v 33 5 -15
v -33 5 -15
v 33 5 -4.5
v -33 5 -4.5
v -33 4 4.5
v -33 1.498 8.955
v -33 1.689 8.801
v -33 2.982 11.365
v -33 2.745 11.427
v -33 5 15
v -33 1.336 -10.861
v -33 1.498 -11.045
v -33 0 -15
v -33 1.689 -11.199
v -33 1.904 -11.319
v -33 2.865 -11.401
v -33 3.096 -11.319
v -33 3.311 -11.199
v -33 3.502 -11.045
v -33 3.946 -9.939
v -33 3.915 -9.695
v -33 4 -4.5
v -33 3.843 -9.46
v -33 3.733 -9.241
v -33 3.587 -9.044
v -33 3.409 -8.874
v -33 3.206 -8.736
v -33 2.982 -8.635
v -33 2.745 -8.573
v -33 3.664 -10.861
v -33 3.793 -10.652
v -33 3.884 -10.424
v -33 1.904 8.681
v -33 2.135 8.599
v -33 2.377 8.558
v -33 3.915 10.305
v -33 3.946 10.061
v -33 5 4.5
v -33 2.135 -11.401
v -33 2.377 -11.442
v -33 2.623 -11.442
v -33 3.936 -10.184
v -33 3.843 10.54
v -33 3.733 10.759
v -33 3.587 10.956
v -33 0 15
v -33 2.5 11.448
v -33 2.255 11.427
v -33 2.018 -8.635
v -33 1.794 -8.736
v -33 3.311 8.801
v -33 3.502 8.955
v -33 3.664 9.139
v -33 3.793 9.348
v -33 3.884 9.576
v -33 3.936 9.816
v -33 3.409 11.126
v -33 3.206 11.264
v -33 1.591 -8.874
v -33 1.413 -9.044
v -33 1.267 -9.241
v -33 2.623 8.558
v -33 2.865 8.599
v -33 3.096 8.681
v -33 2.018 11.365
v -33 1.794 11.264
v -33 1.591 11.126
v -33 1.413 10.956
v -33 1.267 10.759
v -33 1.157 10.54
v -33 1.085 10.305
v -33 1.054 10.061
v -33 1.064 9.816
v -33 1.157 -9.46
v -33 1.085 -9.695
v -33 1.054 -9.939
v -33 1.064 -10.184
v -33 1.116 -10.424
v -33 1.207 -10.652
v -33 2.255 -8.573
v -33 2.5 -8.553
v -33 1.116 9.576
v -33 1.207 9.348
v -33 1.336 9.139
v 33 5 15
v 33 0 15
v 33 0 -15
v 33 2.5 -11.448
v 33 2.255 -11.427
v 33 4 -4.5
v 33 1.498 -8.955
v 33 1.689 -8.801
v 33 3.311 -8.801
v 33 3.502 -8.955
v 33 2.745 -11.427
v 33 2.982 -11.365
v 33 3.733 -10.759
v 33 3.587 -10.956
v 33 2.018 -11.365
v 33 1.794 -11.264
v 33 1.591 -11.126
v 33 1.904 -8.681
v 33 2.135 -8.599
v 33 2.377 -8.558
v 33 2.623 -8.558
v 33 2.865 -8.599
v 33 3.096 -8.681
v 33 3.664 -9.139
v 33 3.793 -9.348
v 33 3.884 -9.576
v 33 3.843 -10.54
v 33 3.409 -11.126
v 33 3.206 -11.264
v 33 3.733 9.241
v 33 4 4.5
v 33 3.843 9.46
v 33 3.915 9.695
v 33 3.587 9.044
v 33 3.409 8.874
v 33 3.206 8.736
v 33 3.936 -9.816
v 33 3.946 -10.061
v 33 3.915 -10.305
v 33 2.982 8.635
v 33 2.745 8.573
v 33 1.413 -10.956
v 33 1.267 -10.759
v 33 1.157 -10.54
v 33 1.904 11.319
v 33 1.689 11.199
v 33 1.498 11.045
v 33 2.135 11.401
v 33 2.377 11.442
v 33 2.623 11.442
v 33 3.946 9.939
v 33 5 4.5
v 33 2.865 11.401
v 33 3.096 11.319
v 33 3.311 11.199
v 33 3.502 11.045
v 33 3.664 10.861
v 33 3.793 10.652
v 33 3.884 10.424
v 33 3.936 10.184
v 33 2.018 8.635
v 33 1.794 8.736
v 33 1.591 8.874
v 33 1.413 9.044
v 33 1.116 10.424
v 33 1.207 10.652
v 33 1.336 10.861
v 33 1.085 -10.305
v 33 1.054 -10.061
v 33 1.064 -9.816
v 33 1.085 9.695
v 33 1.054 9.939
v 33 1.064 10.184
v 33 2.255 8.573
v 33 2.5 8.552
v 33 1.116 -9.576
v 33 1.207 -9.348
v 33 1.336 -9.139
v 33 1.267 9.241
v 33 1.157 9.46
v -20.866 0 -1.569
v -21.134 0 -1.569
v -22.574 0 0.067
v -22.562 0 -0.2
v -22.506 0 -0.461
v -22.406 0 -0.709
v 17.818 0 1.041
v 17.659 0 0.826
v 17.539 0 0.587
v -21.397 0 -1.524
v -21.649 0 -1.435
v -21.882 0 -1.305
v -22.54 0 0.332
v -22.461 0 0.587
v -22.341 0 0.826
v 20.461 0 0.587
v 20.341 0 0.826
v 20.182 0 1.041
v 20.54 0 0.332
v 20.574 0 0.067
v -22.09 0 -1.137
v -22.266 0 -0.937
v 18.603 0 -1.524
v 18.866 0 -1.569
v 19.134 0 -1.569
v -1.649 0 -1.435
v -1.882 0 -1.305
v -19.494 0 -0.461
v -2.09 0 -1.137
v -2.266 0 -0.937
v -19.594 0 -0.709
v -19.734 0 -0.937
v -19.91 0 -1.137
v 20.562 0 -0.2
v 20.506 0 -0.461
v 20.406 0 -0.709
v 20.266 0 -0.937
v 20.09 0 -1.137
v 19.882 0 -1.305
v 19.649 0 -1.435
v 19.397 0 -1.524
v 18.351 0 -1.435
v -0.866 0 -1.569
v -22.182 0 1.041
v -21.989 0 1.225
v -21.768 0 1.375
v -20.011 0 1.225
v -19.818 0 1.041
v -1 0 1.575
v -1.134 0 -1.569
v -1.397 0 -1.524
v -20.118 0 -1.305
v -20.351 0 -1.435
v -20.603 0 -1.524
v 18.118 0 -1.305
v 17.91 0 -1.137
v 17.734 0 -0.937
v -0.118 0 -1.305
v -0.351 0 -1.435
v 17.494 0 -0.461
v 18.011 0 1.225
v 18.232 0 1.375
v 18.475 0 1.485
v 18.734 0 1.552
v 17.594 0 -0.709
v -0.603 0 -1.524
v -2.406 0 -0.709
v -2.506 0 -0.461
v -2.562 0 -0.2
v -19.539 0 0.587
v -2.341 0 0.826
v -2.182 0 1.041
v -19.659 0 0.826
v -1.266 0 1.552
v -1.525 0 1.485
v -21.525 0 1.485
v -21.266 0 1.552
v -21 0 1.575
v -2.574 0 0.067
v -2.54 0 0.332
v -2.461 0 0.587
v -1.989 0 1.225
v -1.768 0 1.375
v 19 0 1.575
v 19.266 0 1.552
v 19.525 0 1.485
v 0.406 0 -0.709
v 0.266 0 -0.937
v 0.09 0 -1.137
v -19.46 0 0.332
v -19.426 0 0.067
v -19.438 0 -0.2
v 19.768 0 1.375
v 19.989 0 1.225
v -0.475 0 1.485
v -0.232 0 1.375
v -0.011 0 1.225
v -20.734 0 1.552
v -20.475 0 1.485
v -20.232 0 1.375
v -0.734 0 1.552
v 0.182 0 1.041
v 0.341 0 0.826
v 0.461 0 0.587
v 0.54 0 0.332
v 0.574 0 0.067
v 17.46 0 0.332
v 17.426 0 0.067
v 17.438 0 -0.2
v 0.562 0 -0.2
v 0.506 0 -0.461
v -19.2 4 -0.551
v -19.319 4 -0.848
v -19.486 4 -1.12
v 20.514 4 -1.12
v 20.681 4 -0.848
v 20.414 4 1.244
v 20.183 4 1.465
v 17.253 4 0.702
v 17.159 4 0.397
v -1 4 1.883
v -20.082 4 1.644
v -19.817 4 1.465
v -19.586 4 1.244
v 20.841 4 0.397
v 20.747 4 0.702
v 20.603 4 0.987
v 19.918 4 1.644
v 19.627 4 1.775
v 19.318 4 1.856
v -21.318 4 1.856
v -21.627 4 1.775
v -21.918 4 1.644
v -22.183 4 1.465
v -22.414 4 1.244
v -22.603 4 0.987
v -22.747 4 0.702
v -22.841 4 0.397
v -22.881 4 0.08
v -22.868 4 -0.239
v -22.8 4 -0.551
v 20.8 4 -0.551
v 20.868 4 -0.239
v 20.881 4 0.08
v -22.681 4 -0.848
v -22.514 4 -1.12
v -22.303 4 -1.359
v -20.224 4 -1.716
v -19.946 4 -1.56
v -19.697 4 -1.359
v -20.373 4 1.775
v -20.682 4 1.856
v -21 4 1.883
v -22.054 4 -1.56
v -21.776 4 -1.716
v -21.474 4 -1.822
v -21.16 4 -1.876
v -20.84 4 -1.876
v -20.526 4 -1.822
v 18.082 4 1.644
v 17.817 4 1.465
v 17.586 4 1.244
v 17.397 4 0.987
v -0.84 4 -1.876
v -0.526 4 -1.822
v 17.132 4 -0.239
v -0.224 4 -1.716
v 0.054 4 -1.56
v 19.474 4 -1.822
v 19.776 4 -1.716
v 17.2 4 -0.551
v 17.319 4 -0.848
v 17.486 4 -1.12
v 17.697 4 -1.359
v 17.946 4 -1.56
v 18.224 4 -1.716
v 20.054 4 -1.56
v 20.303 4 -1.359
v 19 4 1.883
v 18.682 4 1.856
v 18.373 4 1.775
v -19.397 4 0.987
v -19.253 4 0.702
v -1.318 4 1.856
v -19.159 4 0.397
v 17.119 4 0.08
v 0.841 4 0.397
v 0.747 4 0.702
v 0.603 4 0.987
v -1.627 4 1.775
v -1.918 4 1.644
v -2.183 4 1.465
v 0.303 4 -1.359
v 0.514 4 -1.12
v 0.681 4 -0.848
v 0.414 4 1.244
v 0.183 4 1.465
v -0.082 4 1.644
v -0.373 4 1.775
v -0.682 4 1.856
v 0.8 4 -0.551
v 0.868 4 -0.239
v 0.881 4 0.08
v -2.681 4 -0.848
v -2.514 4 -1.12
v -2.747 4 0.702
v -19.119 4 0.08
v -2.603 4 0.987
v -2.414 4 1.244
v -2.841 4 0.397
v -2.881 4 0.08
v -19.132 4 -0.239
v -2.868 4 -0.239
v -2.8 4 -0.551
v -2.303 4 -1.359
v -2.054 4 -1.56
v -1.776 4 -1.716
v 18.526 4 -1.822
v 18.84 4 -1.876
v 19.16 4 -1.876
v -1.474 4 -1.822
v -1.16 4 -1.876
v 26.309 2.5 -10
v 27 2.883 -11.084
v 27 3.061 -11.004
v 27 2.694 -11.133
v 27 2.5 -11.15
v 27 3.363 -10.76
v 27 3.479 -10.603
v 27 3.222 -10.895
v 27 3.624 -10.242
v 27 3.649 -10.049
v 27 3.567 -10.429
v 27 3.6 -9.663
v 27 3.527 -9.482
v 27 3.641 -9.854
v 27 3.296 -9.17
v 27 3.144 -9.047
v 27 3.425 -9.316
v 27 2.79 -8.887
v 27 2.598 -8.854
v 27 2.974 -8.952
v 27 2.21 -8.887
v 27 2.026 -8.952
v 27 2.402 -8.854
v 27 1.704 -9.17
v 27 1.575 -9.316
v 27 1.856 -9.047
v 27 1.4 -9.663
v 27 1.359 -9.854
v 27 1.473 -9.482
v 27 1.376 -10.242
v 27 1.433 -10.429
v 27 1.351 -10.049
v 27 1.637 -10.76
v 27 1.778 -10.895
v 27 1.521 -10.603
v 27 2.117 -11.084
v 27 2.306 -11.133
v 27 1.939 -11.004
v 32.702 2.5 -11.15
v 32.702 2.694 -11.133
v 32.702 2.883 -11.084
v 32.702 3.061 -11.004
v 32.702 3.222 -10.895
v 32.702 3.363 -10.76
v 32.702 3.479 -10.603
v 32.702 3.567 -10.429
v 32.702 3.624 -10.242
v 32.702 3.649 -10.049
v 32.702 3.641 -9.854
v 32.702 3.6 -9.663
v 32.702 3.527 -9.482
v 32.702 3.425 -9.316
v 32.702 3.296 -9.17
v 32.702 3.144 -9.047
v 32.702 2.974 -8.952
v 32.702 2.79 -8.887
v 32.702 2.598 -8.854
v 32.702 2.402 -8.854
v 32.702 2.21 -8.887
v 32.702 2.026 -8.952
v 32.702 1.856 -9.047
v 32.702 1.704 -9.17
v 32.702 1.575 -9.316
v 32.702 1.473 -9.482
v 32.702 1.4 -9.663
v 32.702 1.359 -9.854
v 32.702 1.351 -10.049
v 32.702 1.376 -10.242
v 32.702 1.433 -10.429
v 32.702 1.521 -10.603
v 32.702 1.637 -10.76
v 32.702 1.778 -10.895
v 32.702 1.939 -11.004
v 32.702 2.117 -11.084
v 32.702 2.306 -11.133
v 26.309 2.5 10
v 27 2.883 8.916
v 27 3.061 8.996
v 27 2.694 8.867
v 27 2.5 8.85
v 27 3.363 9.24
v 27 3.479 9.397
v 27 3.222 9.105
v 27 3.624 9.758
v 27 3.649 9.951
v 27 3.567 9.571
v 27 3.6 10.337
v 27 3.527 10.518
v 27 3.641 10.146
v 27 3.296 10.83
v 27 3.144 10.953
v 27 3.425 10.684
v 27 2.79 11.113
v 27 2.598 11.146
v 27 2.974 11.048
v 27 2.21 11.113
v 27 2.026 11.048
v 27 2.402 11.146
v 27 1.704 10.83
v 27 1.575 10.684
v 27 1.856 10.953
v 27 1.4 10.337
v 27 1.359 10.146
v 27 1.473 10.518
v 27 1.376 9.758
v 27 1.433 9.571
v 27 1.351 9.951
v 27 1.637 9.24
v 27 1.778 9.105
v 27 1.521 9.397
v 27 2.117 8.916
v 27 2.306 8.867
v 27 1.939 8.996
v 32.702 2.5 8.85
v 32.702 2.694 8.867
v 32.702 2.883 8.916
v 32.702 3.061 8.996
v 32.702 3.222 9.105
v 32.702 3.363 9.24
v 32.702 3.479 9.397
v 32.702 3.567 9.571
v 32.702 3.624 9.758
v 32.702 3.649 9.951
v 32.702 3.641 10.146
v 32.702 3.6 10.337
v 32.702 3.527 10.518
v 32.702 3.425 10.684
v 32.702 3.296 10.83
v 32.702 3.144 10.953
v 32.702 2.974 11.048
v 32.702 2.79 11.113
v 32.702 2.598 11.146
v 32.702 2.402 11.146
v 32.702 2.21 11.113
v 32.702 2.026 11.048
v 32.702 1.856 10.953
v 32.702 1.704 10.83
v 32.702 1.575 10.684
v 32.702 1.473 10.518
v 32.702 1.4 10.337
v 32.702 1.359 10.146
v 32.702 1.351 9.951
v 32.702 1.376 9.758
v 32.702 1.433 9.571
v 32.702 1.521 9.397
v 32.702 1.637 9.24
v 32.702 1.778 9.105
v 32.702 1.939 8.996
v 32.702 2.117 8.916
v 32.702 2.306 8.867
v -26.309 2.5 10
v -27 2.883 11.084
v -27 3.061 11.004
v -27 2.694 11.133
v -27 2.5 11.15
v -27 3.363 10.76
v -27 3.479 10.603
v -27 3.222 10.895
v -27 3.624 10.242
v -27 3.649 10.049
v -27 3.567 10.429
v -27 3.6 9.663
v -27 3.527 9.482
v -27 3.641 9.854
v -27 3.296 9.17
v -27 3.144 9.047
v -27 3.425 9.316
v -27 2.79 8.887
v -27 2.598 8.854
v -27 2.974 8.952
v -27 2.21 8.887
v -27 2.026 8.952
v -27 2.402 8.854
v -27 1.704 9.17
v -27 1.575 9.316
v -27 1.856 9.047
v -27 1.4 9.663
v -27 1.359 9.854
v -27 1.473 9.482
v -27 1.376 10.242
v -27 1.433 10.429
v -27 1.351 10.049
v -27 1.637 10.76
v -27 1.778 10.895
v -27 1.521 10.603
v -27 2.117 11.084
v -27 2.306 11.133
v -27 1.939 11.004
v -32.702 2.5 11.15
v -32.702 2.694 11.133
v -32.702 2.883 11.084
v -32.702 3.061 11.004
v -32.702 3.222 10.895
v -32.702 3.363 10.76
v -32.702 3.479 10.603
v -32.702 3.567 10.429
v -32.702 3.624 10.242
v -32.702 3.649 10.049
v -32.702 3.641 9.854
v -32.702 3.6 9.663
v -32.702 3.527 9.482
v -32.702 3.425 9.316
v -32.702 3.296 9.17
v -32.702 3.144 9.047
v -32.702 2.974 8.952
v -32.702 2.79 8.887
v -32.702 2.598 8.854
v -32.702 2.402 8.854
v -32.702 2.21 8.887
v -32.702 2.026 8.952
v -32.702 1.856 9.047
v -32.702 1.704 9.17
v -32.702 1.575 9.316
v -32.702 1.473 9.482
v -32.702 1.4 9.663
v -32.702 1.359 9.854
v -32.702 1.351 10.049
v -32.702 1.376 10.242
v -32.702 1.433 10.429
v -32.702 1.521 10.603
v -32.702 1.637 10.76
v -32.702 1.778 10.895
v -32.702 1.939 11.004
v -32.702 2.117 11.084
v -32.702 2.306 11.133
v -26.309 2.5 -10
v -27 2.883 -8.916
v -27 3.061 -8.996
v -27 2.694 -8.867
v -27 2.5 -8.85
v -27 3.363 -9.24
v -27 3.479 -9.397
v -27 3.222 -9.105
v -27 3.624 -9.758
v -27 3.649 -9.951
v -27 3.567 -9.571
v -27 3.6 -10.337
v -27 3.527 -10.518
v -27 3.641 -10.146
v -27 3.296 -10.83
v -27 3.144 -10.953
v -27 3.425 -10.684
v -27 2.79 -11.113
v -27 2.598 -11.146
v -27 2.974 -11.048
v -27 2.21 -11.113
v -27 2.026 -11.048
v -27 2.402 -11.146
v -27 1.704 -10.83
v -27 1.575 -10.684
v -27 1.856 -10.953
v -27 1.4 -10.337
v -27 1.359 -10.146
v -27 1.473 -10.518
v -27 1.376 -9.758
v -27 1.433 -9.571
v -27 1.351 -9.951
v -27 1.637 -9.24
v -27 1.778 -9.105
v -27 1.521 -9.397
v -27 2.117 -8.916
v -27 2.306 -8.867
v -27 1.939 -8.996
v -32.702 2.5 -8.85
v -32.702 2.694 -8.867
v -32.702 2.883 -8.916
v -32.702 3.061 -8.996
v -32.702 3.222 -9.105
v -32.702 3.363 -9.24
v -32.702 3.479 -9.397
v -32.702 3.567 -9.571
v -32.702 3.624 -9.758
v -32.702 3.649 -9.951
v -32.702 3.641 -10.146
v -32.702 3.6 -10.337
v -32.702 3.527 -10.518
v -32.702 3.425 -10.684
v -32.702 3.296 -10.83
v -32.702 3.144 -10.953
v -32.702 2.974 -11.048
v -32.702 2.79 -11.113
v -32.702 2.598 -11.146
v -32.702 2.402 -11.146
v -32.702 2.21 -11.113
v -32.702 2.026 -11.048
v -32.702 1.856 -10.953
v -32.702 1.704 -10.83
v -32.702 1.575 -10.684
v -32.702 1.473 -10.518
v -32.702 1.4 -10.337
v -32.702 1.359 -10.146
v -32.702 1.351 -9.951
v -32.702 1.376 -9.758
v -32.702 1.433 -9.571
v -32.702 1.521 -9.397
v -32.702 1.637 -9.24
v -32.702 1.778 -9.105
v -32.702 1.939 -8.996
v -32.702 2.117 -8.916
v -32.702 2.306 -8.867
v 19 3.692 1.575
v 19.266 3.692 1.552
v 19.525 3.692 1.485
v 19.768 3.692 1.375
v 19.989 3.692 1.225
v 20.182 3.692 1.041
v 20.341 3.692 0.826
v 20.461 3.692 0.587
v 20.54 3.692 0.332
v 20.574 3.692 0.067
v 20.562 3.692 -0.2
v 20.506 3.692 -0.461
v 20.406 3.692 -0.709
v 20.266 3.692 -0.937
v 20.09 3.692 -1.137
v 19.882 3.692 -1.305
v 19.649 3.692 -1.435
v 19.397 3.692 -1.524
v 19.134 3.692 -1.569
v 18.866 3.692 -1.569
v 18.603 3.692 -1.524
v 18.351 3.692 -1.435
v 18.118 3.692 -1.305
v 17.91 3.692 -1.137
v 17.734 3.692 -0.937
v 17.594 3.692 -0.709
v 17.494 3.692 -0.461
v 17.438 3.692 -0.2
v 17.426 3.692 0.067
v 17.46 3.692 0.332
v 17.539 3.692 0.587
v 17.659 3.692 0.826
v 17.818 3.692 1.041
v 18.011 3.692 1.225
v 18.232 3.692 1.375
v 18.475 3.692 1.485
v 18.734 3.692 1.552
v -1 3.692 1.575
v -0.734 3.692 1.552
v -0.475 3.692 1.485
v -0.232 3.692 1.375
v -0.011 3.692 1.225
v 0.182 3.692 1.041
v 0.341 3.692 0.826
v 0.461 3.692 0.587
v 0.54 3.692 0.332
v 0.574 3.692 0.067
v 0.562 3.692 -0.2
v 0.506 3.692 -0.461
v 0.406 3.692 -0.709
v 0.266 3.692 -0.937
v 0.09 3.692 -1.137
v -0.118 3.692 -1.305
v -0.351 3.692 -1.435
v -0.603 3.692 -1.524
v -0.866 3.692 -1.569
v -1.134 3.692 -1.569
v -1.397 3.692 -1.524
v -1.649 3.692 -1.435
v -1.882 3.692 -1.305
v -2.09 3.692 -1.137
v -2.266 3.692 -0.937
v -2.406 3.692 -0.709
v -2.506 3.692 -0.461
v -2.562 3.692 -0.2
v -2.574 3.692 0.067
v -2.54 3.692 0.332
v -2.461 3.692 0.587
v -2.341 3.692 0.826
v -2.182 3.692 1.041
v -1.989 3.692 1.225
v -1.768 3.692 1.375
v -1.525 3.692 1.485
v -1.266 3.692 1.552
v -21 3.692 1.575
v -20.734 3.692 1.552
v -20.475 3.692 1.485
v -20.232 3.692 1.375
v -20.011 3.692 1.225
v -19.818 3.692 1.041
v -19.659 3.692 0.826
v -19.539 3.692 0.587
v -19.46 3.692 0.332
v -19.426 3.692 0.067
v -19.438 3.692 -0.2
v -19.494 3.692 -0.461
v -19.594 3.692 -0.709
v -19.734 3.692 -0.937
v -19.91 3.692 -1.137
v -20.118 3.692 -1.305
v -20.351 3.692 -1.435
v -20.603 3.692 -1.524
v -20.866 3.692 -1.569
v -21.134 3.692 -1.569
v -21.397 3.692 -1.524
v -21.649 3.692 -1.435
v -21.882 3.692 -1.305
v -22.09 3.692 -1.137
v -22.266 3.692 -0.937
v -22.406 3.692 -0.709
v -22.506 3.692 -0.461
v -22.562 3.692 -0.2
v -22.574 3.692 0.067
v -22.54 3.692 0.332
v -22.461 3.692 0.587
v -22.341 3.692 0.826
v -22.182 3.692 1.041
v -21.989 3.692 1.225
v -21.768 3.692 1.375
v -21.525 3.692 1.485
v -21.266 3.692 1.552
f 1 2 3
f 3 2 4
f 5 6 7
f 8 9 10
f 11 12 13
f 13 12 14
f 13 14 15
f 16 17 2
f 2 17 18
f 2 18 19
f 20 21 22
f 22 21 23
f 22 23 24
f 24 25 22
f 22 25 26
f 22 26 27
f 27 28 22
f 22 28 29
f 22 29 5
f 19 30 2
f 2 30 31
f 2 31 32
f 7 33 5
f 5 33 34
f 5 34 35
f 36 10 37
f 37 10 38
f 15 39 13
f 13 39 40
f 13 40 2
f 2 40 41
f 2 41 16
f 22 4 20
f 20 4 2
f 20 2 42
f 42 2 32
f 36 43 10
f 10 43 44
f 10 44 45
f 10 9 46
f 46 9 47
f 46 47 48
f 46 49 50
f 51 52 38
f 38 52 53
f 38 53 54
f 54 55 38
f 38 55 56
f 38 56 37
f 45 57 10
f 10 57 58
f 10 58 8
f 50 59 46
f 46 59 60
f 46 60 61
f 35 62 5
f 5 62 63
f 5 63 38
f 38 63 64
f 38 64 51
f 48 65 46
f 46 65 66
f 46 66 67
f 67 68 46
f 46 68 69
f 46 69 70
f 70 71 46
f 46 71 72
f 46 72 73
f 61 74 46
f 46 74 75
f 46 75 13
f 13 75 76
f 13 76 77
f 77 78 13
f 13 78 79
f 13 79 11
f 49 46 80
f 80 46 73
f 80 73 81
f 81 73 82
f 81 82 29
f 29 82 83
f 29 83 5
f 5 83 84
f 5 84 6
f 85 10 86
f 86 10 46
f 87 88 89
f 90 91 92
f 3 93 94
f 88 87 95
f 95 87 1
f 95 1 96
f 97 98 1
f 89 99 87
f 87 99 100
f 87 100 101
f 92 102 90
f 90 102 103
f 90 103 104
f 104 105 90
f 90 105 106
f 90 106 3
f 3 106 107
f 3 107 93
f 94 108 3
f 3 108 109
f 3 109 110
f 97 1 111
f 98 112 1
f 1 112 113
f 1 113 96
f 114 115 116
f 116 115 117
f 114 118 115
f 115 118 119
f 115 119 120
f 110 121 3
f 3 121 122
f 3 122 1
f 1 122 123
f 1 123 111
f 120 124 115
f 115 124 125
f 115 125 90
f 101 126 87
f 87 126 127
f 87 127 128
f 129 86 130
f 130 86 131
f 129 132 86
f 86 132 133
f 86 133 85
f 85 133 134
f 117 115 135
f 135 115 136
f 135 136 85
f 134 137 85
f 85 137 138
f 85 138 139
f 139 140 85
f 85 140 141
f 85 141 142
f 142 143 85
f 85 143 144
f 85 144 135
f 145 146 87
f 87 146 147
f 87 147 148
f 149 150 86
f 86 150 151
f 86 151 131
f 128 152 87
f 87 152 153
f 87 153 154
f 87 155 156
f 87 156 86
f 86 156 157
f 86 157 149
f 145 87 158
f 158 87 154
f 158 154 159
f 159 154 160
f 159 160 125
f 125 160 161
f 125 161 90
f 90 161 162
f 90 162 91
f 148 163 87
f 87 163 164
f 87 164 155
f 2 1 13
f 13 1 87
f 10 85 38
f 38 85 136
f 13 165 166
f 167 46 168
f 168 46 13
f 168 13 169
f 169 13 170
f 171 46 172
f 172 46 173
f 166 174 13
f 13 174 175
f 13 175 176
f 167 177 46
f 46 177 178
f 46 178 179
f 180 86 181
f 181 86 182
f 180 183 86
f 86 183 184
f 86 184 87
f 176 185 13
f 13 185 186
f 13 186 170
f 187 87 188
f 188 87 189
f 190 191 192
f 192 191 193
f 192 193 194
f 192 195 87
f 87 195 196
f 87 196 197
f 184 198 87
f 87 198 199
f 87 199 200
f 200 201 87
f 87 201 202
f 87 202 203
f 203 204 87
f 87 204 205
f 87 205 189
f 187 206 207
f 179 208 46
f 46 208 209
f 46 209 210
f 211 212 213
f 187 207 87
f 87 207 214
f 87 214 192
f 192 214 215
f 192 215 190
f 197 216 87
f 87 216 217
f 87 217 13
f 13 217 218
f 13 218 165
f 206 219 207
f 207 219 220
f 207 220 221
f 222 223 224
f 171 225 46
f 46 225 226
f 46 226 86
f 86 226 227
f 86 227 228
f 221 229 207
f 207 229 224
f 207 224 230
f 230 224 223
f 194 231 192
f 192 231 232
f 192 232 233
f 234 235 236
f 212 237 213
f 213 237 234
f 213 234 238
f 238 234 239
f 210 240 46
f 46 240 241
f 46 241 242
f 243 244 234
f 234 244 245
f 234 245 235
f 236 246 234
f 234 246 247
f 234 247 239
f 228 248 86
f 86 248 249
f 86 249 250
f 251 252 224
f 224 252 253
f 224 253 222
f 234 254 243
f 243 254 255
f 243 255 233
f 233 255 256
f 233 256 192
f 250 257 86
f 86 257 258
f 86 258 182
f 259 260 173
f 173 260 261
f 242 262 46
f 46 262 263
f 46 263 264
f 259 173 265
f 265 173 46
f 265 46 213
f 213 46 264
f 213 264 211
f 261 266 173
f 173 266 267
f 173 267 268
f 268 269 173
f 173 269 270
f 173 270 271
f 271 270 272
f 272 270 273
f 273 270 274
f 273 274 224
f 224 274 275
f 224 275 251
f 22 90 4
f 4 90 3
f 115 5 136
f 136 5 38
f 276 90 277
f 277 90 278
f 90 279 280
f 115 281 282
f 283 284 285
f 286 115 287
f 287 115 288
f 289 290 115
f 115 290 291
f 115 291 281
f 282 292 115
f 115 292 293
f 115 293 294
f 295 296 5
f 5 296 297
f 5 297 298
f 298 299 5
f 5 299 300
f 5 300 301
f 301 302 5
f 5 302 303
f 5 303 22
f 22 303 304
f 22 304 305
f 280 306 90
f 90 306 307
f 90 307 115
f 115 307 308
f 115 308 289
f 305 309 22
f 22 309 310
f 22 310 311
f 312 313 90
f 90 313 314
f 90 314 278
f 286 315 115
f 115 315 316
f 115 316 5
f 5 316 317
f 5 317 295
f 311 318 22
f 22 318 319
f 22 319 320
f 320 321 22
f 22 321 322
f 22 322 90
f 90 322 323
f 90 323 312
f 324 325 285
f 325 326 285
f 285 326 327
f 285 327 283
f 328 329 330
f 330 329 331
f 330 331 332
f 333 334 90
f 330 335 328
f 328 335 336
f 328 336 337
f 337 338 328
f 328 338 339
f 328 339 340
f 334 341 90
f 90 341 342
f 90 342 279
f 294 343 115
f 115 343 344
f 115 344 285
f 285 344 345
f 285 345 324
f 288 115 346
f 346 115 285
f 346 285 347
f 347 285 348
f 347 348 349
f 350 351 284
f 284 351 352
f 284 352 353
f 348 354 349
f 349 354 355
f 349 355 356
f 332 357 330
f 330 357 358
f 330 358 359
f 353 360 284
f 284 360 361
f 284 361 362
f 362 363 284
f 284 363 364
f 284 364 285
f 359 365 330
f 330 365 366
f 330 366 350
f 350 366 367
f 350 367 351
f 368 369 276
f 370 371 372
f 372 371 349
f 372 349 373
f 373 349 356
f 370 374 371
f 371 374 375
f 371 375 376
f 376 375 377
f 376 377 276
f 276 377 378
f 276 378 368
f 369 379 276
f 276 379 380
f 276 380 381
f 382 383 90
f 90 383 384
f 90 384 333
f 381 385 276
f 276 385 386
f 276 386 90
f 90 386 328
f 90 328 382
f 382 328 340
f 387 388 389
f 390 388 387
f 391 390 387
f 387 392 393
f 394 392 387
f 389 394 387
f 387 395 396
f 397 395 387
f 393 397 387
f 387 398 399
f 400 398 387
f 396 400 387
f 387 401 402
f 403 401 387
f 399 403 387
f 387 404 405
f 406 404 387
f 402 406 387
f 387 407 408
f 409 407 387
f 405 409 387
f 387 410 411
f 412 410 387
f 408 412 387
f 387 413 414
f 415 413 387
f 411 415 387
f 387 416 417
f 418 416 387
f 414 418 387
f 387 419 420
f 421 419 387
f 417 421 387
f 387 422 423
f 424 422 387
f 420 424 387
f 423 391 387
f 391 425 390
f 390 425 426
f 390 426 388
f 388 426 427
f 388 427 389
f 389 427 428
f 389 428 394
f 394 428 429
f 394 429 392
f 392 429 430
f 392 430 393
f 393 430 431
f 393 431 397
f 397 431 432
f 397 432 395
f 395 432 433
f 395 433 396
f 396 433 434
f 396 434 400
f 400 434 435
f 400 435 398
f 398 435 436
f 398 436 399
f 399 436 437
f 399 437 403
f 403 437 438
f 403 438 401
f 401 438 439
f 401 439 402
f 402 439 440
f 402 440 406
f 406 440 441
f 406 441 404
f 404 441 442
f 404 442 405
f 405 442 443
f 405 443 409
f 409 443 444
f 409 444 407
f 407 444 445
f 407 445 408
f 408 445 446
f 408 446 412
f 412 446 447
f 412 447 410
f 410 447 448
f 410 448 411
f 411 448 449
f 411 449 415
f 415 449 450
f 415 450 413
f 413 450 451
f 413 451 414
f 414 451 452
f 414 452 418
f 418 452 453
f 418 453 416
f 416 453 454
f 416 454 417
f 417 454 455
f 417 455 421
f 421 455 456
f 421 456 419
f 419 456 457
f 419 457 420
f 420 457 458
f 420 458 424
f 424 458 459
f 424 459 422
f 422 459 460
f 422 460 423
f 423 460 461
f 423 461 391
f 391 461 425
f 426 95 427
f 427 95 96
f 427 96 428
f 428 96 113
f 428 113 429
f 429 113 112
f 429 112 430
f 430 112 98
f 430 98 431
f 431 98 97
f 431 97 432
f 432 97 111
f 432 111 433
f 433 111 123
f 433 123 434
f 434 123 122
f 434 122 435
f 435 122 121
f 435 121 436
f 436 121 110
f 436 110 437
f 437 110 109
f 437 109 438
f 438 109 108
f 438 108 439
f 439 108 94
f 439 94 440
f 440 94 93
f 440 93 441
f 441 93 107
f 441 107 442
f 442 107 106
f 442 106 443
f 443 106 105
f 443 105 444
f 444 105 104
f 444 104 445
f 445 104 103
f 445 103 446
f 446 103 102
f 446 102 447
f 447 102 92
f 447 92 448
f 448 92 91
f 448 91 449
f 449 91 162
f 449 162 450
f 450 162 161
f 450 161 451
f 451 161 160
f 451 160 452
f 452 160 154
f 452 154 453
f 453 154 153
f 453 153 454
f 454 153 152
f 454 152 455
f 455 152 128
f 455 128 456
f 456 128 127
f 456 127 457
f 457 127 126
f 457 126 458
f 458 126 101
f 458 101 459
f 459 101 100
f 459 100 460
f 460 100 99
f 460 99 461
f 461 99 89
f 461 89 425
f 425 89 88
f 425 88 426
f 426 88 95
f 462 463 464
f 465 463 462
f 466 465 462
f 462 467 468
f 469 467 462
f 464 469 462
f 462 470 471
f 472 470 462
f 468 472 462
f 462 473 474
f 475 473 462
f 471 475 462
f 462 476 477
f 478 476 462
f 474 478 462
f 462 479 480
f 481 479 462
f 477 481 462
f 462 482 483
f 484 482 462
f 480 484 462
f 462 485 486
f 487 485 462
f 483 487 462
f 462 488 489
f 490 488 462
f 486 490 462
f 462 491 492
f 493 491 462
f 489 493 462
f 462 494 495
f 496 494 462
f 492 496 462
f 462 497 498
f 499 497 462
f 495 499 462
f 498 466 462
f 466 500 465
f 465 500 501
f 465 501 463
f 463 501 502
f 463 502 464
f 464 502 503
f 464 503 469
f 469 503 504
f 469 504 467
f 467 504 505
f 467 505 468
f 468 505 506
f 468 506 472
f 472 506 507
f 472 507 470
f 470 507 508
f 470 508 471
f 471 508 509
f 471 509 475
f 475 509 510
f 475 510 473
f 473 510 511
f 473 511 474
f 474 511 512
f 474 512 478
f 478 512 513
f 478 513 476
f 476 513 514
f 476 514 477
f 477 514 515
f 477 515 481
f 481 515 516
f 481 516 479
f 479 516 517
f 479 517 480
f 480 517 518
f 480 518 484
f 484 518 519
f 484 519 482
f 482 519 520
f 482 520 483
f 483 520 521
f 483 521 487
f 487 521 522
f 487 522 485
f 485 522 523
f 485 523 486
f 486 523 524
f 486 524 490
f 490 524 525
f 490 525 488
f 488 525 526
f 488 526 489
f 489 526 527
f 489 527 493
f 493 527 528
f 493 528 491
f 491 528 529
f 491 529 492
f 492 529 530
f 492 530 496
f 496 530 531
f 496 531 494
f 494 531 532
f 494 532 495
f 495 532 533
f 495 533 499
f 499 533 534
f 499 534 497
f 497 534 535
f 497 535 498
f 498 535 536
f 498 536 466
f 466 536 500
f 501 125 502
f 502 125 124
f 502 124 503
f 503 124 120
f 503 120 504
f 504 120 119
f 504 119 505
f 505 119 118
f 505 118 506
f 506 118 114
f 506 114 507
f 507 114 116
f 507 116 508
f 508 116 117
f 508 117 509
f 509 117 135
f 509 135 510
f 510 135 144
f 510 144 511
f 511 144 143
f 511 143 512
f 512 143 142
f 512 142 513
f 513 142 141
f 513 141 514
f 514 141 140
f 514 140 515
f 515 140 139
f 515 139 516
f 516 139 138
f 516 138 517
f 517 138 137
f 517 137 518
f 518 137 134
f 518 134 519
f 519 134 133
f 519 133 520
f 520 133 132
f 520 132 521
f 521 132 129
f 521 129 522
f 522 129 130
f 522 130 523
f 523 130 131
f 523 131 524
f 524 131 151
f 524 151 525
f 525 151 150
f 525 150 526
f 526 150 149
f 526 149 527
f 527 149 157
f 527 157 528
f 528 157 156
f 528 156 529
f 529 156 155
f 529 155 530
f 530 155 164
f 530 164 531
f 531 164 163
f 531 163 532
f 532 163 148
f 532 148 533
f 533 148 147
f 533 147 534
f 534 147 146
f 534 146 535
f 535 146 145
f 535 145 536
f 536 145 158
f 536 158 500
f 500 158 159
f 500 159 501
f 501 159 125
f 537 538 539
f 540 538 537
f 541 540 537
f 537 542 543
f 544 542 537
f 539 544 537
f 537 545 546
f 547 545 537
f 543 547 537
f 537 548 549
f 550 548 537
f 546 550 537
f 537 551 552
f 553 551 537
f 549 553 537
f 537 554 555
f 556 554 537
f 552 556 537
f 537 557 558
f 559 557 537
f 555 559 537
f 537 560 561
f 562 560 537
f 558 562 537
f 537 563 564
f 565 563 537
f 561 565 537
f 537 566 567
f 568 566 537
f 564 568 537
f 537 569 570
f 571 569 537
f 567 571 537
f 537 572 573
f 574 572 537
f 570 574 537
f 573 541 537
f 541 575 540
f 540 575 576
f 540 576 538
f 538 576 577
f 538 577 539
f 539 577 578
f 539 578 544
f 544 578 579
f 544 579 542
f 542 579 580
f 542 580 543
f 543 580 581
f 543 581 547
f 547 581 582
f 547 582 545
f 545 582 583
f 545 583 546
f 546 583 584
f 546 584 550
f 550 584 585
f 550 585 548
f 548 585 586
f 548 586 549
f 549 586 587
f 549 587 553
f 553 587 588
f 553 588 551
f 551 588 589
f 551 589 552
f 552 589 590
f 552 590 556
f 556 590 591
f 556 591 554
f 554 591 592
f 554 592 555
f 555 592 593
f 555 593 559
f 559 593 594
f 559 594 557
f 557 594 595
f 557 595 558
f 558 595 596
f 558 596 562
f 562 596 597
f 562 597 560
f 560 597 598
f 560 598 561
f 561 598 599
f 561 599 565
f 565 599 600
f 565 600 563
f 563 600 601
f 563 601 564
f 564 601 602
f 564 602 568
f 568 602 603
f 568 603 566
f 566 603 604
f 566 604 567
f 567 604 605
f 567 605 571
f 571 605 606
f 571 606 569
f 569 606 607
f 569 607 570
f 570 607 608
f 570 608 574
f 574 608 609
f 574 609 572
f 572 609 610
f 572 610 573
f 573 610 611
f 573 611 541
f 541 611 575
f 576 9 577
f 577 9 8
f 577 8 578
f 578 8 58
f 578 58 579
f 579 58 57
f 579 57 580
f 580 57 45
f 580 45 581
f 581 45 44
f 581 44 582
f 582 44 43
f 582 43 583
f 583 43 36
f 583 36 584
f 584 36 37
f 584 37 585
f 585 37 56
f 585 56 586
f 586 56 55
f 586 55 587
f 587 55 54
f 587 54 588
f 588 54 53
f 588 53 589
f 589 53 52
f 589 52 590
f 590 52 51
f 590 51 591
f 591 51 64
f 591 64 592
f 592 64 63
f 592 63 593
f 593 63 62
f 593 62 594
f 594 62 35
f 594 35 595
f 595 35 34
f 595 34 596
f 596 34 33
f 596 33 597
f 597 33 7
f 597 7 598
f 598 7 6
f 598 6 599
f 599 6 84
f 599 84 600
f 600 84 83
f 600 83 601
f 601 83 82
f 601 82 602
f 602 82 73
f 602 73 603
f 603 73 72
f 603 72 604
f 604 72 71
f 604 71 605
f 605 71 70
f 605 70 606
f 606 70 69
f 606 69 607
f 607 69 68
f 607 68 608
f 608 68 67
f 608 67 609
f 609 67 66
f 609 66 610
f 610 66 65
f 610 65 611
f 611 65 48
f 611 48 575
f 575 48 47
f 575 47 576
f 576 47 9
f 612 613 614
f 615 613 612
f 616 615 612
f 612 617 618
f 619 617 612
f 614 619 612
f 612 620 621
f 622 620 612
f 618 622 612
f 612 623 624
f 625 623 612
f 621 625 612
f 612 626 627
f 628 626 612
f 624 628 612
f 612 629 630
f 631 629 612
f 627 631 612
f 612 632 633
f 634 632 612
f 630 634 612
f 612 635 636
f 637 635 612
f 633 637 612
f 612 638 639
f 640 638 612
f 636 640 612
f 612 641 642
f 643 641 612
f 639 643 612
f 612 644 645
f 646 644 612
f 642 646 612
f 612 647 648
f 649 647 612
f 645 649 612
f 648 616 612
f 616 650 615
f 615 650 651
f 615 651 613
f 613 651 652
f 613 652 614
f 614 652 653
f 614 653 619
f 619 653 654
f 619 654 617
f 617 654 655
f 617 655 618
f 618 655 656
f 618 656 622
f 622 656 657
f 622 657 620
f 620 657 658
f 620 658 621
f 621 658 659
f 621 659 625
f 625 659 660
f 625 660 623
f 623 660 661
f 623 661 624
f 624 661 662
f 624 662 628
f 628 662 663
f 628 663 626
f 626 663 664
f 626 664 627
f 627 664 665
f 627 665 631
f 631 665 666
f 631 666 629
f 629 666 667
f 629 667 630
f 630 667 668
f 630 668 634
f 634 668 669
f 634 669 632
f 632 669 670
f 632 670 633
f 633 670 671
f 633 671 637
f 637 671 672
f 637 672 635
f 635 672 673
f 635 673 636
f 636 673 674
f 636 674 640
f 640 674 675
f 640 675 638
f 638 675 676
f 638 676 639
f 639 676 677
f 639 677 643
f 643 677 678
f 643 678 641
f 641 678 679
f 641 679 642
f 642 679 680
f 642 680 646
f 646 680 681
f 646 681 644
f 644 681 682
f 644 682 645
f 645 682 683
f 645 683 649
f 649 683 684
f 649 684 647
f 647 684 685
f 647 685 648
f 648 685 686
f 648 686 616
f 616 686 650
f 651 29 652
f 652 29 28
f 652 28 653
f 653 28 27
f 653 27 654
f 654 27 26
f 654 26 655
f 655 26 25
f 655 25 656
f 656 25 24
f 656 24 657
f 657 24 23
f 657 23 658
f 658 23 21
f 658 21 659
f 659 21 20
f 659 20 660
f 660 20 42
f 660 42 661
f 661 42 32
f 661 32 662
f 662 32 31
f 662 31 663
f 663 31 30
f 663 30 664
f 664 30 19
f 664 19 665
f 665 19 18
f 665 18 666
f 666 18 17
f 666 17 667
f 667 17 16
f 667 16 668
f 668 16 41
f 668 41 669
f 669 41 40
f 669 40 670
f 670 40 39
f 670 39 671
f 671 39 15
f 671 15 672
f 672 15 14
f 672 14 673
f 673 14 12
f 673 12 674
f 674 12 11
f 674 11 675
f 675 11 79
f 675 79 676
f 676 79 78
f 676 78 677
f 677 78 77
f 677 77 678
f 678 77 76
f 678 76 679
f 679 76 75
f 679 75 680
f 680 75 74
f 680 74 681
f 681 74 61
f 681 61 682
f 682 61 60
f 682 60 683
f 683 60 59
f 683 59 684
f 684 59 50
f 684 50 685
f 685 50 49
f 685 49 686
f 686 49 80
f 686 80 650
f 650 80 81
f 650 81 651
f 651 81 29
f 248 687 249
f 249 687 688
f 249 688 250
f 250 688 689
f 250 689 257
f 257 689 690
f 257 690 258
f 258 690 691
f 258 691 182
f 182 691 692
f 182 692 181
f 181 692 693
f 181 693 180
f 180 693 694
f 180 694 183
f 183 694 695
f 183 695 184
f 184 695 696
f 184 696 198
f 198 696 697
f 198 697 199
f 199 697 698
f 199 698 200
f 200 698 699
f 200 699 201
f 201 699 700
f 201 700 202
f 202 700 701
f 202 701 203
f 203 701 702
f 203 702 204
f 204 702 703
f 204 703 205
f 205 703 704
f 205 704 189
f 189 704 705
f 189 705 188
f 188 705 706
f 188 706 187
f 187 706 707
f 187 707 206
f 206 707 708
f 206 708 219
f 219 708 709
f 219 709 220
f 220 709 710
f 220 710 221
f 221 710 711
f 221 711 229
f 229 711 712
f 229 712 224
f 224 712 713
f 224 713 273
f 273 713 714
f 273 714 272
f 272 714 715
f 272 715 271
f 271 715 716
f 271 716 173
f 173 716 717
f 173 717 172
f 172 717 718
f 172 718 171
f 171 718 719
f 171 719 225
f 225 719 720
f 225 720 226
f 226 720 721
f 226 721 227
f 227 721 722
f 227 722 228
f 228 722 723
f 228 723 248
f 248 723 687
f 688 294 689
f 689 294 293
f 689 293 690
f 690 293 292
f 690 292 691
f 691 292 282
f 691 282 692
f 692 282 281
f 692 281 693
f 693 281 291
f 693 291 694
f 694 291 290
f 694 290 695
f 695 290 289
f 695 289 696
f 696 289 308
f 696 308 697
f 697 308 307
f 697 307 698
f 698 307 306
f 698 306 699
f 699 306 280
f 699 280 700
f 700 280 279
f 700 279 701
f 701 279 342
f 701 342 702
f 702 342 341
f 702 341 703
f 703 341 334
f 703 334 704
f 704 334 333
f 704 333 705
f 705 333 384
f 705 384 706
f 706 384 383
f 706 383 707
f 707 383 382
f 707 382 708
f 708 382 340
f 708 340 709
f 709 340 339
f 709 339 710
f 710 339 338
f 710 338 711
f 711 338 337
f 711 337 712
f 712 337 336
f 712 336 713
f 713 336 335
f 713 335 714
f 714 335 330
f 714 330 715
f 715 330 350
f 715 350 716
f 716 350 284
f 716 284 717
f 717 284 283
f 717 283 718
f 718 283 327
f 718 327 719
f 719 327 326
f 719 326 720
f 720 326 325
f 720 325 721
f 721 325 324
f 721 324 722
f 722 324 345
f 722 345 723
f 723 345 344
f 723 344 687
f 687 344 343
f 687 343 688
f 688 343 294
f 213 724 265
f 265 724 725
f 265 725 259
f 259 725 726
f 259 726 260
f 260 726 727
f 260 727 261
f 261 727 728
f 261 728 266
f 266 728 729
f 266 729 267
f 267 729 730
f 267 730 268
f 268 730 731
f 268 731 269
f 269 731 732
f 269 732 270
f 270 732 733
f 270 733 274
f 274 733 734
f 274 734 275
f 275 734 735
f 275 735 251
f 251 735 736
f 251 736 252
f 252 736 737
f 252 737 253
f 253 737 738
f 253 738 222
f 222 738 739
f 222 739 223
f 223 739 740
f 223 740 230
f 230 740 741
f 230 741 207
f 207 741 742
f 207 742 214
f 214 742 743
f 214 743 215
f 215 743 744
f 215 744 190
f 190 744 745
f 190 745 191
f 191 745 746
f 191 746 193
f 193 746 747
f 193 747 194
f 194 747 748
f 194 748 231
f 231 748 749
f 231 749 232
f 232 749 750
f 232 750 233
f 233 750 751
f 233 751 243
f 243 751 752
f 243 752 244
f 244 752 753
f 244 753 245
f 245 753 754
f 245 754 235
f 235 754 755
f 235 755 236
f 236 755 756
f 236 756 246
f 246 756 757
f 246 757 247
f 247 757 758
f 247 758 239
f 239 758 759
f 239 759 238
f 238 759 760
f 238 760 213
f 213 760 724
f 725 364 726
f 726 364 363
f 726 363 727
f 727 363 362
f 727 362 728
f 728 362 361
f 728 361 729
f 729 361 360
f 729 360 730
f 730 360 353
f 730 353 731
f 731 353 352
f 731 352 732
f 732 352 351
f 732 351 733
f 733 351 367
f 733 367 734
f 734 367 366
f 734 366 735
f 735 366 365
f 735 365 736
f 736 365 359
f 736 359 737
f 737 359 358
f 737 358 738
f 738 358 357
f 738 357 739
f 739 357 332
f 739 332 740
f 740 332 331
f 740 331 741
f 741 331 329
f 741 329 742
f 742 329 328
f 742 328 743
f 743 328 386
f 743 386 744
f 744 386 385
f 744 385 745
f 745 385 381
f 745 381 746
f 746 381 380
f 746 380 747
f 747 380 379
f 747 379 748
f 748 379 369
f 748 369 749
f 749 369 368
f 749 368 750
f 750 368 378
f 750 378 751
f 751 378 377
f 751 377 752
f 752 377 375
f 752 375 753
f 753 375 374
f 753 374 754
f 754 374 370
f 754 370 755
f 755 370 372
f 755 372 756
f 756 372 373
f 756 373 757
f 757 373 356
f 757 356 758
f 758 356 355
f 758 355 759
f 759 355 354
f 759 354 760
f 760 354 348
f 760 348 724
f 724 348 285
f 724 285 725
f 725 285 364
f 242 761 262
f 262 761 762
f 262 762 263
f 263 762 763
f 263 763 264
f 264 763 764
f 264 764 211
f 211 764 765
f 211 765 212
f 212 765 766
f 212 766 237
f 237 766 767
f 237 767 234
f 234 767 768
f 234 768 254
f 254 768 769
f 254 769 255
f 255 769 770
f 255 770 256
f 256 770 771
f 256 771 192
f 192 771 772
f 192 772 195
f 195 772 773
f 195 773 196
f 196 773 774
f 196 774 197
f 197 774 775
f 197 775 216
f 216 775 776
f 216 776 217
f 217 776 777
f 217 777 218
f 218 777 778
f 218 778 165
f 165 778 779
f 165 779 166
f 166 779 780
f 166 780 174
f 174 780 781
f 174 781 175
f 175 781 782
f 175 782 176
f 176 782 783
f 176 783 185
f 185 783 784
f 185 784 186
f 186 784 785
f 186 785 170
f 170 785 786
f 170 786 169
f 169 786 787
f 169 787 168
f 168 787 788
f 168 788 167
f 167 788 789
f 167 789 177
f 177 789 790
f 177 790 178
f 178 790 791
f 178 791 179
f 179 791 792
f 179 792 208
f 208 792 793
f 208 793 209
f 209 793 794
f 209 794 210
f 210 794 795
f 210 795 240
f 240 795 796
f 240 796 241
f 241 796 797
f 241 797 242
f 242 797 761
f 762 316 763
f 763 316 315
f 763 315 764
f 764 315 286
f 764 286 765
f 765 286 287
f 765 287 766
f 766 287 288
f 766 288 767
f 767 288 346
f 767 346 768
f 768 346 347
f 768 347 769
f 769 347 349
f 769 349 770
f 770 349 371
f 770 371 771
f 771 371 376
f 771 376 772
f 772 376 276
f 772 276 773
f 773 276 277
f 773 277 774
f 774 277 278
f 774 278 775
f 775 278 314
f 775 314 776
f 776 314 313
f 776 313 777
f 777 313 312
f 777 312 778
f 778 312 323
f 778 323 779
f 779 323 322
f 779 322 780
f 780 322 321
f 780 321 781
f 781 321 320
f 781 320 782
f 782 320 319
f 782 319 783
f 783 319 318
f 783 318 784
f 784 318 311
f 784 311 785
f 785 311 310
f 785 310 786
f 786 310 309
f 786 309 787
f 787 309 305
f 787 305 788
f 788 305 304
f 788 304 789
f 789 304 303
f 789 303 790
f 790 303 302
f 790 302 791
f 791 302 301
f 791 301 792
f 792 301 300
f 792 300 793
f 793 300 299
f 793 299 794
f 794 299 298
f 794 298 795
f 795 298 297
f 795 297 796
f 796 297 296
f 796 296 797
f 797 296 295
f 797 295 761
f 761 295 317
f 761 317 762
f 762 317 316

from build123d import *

# Parameters (mm, degrees)
ESBO_O1_W                                            = 66
ESBO_O1_H                                            = 30
RESSALTO_EXTRUS_O1_DEPTH                             = 5
ESBO_O2_W                                            = 66
ESBO_O2_H                                            = 9
CORTE_EXTRUS_O1_DEPTH                                = 1
FURO_ROSCADO_PARA_CONDU_TE_DE_M2_2X0_451_D           = 2.3
FURO_ROSCADO_PARA_CONDU_TE_DE_M2_2X0_451_DEPTH       = 6
FURO_ROSCADO_PARA_CONDU_TE_DE_M2_2X0_451_CSINK_D     = 2.895
FURO_ROSCADO_PARA_CONDU_TE_DE_M2_2X0_451_CSINK_ANGLE = 90
FURO_ROSCADO_PARA_CONDU_TE_DE_M2_2X0_451_TIP         = 0.690989712
FURO_ROSCADO_PARA_CONDU_TE_DE_M2_2X0_452_D           = 2.3
FURO_ROSCADO_PARA_CONDU_TE_DE_M2_2X0_452_DEPTH       = 6
FURO_ROSCADO_PARA_CONDU_TE_DE_M2_2X0_452_CSINK_D     = 2.895
FURO_ROSCADO_PARA_CONDU_TE_DE_M2_2X0_452_CSINK_ANGLE = 90
FURO_ROSCADO_PARA_CONDU_TE_DE_M2_2X0_452_TIP         = 0.690989712
FURO_ROSCADO_PARA_CONDU_TE_DE_M3X0_53_D              = 3.15
FURO_ROSCADO_PARA_CONDU_TE_DE_M3X0_53_CSINK_D        = 3.766
FURO_ROSCADO_PARA_CONDU_TE_DE_M3X0_53_CSINK_ANGLE    = 90


with BuildPart() as part:
    # Esboço1 → Ressalto-extrusão1 (new body)
    with BuildSketch(Plane(origin=(0, 0, 0), x_dir=(1, 0, 0), z_dir=(0, 1, 0))):
        Rectangle(ESBO_O1_W, ESBO_O1_H)
    extrude(amount=RESSALTO_EXTRUS_O1_DEPTH)

    # Esboço2 → Corte-extrusão1 (cut)
    with BuildSketch(Plane(origin=(0, 5, 0), x_dir=(1, 0, 0), z_dir=(0, 1, 0))):
        Rectangle(ESBO_O2_W, ESBO_O2_H)
    extrude(amount=-CORTE_EXTRUS_O1_DEPTH, mode=Mode.SUBTRACT)

    # Furo roscado para conduíte de M2.2x0.451
    with Locations(Plane(origin=(33, 0, 0), x_dir=(0, 0, -1), z_dir=(1, 0, 0))):
        with Locations((-10, 2.5), (10, 2.5)):
            CounterSinkHole(FURO_ROSCADO_PARA_CONDU_TE_DE_M2_2X0_451_D / 2, FURO_ROSCADO_PARA_CONDU_TE_DE_M2_2X0_451_CSINK_D / 2, depth=FURO_ROSCADO_PARA_CONDU_TE_DE_M2_2X0_451_DEPTH, counter_sink_angle=FURO_ROSCADO_PARA_CONDU_TE_DE_M2_2X0_451_CSINK_ANGLE)
            with Locations((0, 0, -(FURO_ROSCADO_PARA_CONDU_TE_DE_M2_2X0_451_DEPTH + FURO_ROSCADO_PARA_CONDU_TE_DE_M2_2X0_451_TIP / 2))):  # 118° drill point
                Cone(0, FURO_ROSCADO_PARA_CONDU_TE_DE_M2_2X0_451_D / 2, FURO_ROSCADO_PARA_CONDU_TE_DE_M2_2X0_451_TIP, mode=Mode.SUBTRACT)

    # Furo roscado para conduíte de M2.2x0.452
    with Locations(Plane.ZY.offset(33)):
        with Locations((-10, 2.5), (10, 2.5)):
            CounterSinkHole(FURO_ROSCADO_PARA_CONDU_TE_DE_M2_2X0_452_D / 2, FURO_ROSCADO_PARA_CONDU_TE_DE_M2_2X0_452_CSINK_D / 2, depth=FURO_ROSCADO_PARA_CONDU_TE_DE_M2_2X0_452_DEPTH, counter_sink_angle=FURO_ROSCADO_PARA_CONDU_TE_DE_M2_2X0_452_CSINK_ANGLE)
            with Locations((0, 0, -(FURO_ROSCADO_PARA_CONDU_TE_DE_M2_2X0_452_DEPTH + FURO_ROSCADO_PARA_CONDU_TE_DE_M2_2X0_452_TIP / 2))):  # 118° drill point
                Cone(0, FURO_ROSCADO_PARA_CONDU_TE_DE_M2_2X0_452_D / 2, FURO_ROSCADO_PARA_CONDU_TE_DE_M2_2X0_452_TIP, mode=Mode.SUBTRACT)

    # Furo roscado para conduíte de M3x0.53 (through all)
    with Locations(Plane(origin=(0, 4, 0), x_dir=(1, 0, 0), z_dir=(0, 1, 0))):
        with Locations((-21, 0), (-1, 0), (19, 0)):
            CounterSinkHole(FURO_ROSCADO_PARA_CONDU_TE_DE_M3X0_53_D / 2, FURO_ROSCADO_PARA_CONDU_TE_DE_M3X0_53_CSINK_D / 2, counter_sink_angle=FURO_ROSCADO_PARA_CONDU_TE_DE_M3X0_53_CSINK_ANGLE)


solid = part.part
